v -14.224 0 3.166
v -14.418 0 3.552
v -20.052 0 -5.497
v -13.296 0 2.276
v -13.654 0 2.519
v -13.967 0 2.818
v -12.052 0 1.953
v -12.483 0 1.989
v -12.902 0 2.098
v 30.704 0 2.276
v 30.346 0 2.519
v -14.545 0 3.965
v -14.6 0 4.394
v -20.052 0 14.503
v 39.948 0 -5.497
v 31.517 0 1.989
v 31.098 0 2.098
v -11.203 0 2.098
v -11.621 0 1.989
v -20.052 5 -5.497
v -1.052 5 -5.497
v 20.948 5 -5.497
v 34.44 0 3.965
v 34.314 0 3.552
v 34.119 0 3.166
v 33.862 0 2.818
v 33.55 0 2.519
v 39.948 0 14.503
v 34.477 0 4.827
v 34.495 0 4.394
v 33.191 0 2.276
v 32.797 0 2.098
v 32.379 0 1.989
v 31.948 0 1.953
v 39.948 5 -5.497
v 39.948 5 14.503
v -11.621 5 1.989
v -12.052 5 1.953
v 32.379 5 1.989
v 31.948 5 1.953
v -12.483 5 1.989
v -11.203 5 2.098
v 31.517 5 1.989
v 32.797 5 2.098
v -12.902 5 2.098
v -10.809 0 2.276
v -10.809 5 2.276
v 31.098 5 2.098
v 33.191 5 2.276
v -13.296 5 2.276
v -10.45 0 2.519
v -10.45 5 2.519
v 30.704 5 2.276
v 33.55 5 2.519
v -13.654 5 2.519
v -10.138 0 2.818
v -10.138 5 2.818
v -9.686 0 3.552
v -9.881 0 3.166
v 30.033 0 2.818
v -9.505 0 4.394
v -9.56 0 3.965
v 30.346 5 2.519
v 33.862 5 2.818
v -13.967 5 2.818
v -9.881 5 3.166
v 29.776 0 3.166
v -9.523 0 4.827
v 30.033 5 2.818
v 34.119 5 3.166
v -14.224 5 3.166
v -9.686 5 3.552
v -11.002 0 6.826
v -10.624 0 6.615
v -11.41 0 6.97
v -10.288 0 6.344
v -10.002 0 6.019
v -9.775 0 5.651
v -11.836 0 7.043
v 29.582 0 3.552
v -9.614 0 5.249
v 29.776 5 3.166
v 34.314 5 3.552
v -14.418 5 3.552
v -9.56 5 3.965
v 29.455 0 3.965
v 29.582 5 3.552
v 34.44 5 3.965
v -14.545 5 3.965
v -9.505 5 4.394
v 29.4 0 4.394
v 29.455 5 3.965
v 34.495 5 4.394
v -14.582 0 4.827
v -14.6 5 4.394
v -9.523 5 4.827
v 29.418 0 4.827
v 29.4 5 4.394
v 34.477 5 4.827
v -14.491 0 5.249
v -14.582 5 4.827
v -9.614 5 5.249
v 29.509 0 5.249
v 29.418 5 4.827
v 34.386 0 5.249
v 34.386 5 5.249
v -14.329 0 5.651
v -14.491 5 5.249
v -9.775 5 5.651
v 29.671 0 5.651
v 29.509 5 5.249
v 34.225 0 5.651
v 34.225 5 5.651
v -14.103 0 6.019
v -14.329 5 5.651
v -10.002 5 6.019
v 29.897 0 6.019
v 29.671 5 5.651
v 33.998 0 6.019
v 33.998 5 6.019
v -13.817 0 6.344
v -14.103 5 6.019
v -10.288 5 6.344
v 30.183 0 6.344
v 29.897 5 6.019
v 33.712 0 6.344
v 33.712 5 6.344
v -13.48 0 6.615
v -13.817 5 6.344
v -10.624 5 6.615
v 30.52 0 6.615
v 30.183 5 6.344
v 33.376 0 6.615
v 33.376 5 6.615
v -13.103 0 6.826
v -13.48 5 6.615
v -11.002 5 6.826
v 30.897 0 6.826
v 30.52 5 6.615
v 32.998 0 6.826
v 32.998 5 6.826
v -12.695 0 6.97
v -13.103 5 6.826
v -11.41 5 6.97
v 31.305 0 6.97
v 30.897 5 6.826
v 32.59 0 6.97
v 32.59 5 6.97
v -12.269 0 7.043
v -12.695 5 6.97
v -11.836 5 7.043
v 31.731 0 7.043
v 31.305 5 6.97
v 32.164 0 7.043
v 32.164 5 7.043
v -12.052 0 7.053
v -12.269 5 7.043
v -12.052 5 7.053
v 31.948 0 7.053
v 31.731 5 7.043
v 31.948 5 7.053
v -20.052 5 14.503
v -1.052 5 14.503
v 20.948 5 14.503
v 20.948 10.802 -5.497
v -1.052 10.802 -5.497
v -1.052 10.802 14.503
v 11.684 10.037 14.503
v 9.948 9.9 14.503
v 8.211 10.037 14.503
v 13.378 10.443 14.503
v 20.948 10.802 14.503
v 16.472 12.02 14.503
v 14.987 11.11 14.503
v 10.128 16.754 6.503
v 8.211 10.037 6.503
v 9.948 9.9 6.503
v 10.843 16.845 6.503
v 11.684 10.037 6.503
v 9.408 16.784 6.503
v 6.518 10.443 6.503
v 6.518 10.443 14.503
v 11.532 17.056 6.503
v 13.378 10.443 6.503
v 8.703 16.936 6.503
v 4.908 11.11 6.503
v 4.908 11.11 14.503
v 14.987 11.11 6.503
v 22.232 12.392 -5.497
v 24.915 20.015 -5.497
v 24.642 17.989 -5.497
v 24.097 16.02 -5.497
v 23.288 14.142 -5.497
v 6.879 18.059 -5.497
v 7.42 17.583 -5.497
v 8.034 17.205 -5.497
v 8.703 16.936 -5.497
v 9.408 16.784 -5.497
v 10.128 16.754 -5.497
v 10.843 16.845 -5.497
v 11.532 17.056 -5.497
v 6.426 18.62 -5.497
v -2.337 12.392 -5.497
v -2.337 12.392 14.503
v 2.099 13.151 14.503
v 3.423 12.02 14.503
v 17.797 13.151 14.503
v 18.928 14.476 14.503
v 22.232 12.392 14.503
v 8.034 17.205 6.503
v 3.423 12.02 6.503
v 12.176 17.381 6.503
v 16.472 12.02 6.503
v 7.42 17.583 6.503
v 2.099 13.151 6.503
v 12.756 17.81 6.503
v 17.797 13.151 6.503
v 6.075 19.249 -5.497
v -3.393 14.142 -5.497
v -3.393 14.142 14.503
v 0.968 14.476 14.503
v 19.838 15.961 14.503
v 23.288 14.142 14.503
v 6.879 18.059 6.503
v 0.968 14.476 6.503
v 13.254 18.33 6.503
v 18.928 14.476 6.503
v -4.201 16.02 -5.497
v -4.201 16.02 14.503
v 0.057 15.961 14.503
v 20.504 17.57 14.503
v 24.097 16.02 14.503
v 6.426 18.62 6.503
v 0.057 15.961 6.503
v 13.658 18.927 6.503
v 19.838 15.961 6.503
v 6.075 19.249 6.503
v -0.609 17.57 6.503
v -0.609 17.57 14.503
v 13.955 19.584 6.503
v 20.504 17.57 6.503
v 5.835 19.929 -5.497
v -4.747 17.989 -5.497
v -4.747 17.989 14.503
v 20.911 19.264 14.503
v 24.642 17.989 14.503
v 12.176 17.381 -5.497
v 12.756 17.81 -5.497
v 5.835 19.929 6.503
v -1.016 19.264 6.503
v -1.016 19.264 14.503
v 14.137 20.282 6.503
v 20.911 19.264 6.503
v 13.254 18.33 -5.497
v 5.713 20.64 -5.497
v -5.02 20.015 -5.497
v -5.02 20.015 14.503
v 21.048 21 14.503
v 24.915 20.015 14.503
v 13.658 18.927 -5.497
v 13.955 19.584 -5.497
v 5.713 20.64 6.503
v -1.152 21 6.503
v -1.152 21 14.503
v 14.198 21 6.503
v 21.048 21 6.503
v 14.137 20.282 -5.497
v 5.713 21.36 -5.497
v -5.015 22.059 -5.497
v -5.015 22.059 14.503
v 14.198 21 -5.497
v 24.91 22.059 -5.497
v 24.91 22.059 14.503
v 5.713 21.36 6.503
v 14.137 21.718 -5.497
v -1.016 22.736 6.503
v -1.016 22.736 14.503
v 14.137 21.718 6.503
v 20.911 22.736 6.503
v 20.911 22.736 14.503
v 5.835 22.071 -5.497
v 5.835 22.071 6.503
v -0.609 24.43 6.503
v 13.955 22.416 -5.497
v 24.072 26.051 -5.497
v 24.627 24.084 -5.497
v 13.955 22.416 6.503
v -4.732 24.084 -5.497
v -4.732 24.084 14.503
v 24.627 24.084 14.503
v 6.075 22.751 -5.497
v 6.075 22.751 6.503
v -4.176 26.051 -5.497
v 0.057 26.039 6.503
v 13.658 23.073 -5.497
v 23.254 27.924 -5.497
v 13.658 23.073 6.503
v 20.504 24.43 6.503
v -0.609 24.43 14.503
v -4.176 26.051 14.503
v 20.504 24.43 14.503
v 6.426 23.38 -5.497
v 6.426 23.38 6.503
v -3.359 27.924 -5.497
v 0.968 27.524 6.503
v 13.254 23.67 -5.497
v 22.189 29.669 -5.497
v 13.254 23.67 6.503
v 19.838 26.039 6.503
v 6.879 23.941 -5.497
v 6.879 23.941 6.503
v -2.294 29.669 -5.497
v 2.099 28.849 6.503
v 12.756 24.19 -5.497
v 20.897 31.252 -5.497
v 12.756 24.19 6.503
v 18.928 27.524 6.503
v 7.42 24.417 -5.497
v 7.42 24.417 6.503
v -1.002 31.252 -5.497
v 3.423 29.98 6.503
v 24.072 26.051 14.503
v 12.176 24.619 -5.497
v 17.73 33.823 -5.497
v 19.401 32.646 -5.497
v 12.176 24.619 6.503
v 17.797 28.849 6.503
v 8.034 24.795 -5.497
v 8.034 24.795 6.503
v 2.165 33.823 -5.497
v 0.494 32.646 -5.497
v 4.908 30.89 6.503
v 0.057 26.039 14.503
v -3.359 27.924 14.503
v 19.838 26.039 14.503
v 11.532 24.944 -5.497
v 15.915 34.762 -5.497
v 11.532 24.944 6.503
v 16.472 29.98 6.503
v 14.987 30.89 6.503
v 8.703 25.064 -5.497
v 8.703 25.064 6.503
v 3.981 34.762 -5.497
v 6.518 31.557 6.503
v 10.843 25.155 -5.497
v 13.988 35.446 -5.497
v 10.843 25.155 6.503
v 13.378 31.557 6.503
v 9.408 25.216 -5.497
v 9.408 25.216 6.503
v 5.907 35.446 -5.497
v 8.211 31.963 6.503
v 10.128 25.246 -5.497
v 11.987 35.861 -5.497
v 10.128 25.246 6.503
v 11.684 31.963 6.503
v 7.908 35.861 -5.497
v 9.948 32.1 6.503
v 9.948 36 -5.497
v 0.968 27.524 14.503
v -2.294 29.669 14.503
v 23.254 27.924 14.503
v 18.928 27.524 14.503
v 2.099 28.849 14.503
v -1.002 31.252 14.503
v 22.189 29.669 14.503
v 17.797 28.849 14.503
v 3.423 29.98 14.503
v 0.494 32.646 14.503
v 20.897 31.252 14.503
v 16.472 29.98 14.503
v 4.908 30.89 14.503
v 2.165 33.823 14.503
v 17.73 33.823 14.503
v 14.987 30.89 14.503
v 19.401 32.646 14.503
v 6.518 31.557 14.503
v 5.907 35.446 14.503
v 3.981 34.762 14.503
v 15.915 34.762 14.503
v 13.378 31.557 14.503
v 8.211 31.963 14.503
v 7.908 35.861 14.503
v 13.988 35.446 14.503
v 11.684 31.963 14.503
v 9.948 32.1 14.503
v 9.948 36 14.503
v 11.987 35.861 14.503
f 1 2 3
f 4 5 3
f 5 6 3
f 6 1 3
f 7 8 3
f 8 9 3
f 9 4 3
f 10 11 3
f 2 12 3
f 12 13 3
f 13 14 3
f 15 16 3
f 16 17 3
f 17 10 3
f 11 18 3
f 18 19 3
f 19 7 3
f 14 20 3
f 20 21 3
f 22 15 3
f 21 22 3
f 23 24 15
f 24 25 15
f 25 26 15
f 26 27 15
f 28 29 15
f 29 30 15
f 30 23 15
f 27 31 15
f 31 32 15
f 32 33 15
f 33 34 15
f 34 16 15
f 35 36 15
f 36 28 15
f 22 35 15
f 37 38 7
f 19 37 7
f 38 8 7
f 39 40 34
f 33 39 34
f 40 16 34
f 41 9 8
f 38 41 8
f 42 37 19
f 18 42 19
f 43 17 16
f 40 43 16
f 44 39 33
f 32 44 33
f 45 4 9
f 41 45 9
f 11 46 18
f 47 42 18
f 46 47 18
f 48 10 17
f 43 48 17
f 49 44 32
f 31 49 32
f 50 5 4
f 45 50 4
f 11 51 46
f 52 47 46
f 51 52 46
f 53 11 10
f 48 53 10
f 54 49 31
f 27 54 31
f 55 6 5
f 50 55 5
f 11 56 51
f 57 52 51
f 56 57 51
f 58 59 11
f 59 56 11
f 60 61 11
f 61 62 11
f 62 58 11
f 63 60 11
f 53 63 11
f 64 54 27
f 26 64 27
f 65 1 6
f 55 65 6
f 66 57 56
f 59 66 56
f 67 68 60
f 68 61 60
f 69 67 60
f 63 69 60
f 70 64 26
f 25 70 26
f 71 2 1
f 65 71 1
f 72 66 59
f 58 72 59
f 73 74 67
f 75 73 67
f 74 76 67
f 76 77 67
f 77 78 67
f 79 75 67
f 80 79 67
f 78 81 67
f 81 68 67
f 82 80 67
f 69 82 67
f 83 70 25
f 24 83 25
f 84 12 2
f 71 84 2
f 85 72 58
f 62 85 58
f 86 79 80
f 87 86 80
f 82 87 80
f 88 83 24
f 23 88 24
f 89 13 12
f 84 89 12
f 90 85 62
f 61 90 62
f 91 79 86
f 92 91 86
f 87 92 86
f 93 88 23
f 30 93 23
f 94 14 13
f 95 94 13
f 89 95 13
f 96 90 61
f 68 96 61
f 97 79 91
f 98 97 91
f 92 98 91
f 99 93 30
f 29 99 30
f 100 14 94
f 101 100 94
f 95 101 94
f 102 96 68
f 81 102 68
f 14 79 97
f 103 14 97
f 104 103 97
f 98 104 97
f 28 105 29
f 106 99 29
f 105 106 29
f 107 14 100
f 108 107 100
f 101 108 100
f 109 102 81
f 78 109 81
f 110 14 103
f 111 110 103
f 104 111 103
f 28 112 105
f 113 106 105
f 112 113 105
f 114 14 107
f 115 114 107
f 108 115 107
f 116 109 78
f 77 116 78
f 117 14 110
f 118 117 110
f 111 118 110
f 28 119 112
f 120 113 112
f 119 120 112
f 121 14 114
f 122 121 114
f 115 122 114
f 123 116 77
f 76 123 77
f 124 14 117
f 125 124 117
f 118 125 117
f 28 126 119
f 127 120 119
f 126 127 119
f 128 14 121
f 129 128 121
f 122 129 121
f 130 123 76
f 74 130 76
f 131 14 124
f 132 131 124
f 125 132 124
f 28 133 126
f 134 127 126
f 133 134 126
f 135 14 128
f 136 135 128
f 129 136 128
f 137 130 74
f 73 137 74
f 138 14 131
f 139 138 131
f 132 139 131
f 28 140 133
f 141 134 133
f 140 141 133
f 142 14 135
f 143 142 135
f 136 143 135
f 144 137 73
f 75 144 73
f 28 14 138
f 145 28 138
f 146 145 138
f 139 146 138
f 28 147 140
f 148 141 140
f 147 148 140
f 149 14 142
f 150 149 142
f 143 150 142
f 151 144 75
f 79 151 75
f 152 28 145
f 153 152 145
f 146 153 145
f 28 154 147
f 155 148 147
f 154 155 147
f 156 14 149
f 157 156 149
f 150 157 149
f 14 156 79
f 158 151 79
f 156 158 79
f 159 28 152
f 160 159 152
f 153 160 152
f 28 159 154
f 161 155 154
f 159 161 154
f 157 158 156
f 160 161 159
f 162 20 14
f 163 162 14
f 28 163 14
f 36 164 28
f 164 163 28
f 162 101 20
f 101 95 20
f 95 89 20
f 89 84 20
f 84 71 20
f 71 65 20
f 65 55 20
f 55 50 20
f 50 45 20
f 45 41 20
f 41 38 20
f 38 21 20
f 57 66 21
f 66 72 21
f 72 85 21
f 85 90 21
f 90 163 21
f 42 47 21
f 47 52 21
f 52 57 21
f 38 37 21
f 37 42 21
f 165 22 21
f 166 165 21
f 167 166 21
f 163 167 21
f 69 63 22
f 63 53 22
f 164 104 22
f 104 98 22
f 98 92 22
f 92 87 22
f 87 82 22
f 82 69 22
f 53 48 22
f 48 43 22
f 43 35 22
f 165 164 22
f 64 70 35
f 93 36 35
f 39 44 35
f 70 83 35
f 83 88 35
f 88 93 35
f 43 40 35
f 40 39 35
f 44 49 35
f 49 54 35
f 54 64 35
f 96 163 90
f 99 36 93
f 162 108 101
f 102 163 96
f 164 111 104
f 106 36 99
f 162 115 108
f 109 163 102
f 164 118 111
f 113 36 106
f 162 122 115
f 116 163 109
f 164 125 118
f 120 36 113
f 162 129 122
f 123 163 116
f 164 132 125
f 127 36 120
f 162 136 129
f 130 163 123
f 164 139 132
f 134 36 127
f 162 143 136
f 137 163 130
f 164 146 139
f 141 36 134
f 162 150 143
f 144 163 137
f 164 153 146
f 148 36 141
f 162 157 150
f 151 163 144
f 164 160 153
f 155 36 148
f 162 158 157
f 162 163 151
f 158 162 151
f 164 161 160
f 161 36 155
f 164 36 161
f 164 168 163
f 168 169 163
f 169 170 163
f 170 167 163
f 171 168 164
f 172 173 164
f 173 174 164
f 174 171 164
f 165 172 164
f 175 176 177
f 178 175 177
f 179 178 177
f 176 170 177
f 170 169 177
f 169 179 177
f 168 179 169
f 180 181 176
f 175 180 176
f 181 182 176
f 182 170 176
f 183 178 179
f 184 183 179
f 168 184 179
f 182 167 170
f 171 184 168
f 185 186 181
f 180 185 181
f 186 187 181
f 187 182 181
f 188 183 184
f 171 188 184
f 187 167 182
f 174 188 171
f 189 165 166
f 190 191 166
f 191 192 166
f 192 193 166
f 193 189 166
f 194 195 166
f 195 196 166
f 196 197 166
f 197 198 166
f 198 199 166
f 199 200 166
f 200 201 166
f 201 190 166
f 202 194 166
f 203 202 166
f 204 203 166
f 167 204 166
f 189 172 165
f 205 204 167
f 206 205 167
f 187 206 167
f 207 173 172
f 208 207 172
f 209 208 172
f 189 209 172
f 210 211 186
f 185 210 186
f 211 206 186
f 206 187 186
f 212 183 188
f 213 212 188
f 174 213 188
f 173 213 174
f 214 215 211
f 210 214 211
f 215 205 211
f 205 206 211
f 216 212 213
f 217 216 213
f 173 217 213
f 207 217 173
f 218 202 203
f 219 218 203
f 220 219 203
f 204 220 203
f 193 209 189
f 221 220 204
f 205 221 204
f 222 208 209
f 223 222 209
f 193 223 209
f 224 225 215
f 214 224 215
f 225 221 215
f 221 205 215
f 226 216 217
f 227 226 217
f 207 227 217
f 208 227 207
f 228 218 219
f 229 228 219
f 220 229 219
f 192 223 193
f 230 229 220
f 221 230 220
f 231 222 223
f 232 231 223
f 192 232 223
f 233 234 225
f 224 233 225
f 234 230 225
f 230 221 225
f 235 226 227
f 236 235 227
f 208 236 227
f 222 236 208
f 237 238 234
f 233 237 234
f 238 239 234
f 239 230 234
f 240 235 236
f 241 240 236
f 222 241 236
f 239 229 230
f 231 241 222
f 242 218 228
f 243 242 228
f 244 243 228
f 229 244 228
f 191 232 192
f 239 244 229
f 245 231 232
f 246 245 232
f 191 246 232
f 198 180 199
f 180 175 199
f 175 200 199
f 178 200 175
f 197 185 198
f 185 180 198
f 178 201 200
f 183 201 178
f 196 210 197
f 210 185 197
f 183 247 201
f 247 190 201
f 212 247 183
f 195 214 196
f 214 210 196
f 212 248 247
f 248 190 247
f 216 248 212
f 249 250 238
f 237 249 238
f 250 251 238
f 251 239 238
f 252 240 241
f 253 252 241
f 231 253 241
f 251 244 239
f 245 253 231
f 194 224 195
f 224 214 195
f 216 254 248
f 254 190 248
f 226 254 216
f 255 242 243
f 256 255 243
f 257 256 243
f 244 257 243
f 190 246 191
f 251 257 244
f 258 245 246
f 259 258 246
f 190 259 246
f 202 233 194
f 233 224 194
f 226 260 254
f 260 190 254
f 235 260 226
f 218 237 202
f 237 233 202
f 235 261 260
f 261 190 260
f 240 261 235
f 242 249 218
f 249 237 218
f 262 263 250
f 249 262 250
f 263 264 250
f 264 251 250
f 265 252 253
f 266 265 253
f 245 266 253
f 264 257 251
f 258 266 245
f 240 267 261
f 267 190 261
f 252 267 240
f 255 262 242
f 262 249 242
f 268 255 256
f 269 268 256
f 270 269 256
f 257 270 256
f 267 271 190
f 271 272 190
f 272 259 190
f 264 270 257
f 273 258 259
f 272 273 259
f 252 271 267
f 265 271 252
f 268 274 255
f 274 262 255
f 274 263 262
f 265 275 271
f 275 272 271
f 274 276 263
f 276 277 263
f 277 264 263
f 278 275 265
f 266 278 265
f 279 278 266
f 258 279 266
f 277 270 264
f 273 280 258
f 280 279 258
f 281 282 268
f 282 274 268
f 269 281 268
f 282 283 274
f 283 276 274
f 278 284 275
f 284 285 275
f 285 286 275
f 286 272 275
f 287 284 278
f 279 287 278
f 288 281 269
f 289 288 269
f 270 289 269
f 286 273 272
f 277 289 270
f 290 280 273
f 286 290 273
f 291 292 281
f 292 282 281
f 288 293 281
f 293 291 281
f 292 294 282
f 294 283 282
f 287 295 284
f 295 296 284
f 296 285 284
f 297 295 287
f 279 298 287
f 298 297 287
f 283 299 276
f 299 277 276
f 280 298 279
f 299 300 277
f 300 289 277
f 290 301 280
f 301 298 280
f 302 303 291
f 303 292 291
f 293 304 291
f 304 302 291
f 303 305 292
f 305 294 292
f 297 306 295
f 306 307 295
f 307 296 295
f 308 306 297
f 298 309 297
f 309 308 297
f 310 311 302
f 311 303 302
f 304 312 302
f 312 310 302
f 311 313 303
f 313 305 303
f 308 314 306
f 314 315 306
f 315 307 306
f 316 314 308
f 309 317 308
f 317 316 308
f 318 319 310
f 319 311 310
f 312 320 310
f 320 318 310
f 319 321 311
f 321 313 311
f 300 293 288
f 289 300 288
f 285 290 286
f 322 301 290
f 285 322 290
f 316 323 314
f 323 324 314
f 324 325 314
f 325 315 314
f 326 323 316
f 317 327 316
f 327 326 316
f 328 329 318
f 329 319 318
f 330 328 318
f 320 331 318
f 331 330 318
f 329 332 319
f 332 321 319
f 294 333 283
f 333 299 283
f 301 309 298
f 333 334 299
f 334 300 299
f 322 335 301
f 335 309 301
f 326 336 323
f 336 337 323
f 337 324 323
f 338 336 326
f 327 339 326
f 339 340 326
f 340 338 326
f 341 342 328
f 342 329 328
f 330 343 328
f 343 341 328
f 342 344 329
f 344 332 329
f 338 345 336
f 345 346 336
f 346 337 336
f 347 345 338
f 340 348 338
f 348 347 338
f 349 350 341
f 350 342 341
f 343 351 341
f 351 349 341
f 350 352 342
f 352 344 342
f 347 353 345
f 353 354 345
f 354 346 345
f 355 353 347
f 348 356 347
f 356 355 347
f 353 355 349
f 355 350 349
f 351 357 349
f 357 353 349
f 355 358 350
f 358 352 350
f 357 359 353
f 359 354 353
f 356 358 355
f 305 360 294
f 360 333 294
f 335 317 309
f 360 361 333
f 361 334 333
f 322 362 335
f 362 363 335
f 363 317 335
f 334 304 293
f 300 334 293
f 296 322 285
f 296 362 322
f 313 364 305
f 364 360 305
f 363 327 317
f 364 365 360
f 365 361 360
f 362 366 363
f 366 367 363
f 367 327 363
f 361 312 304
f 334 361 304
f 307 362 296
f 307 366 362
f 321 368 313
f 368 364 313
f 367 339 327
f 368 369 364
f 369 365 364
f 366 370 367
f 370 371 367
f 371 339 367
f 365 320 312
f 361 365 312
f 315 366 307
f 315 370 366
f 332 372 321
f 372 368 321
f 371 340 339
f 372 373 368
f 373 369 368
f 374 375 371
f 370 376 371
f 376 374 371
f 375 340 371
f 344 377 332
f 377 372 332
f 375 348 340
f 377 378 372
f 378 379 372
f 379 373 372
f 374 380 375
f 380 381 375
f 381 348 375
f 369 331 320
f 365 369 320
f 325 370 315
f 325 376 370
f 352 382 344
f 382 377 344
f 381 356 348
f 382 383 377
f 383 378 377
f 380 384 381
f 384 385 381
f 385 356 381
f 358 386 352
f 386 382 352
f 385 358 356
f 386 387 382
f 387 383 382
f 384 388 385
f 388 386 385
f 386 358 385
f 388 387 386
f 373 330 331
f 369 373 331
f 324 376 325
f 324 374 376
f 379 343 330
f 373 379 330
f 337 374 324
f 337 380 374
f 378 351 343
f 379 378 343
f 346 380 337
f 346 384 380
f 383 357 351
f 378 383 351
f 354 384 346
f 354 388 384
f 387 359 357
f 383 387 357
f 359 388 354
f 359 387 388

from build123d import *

# Parameters (mm, degrees)
SKETCH_1_W          = 60
SKETCH_1_H          = 20
SKETCH_1_R          = 2.55
EXTRUDE_1_DEPTH     = 5
SKETCH_3_W          = 22
SKETCH_3_H          = 20
EXTRUDE_2_DEPTH     = 16
SKETCH_4_R          = 15
EXTRUDE_3_DEPTH     = 20
SKETCH_5_R          = 4.25
CUT_EXTRUDE_1_DEPTH = 58.374334501
SKETCH_6_R          = 11.1
CUT_EXTRUDE_2_DEPTH = 8


with BuildPart() as part:
    # 草图1 → 凸台-拉伸1 (new body)
    with BuildSketch(Plane(origin=(0, 0, 0), x_dir=(1, 0, 0), z_dir=(0, 1, 0))):
        with Locations((9.947643979, -4.502617801)):
            Rectangle(SKETCH_1_W, SKETCH_1_H)
        with Locations(Location((-12.052356021, -4.502617801, 0), (0, 0, 270))):
            Circle(SKETCH_1_R, mode=Mode.SUBTRACT)
        with Locations(Location((31.947643979, -4.502617801, 0), (0, 0, 270))):
            Circle(SKETCH_1_R, mode=Mode.SUBTRACT)
    extrude(amount=EXTRUDE_1_DEPTH)

    # 草图3 → 凸台-拉伸2 (add)
    with BuildSketch(Plane(origin=(0, 5, 0), x_dir=(1, 0, 0), z_dir=(0, 1, 0))):
        with Locations((9.947643979, -4.502617801)):
            Rectangle(SKETCH_3_W, SKETCH_3_H)
    extrude(amount=EXTRUDE_2_DEPTH)

    # 草图4 → 凸台-拉伸3 (add)
    with BuildSketch(Plane(origin=(0, 0, -5.497382199), x_dir=(-1, 0, 0), z_dir=(0, 0, -1))):
        with Locations((-9.947643979, 21)):
            Circle(SKETCH_4_R)
    extrude(amount=-EXTRUDE_3_DEPTH)

    # 草图5 → 切除-拉伸1 (cut, through all)
    with BuildSketch(Plane.XY.offset(14.502617801)):
        with Locations((9.947643979, 21)):
            Circle(SKETCH_5_R)
    extrude(amount=-CUT_EXTRUDE_1_DEPTH, mode=Mode.SUBTRACT)

    # 草图6 → 切除-拉伸2 (cut)
    with BuildSketch(Plane.XY.offset(14.502617801)):
        with Locations((9.947643979, 21)):
            Circle(SKETCH_6_R)
    extrude(amount=-CUT_EXTRUDE_2_DEPTH, mode=Mode.SUBTRACT)


solid = part.part
